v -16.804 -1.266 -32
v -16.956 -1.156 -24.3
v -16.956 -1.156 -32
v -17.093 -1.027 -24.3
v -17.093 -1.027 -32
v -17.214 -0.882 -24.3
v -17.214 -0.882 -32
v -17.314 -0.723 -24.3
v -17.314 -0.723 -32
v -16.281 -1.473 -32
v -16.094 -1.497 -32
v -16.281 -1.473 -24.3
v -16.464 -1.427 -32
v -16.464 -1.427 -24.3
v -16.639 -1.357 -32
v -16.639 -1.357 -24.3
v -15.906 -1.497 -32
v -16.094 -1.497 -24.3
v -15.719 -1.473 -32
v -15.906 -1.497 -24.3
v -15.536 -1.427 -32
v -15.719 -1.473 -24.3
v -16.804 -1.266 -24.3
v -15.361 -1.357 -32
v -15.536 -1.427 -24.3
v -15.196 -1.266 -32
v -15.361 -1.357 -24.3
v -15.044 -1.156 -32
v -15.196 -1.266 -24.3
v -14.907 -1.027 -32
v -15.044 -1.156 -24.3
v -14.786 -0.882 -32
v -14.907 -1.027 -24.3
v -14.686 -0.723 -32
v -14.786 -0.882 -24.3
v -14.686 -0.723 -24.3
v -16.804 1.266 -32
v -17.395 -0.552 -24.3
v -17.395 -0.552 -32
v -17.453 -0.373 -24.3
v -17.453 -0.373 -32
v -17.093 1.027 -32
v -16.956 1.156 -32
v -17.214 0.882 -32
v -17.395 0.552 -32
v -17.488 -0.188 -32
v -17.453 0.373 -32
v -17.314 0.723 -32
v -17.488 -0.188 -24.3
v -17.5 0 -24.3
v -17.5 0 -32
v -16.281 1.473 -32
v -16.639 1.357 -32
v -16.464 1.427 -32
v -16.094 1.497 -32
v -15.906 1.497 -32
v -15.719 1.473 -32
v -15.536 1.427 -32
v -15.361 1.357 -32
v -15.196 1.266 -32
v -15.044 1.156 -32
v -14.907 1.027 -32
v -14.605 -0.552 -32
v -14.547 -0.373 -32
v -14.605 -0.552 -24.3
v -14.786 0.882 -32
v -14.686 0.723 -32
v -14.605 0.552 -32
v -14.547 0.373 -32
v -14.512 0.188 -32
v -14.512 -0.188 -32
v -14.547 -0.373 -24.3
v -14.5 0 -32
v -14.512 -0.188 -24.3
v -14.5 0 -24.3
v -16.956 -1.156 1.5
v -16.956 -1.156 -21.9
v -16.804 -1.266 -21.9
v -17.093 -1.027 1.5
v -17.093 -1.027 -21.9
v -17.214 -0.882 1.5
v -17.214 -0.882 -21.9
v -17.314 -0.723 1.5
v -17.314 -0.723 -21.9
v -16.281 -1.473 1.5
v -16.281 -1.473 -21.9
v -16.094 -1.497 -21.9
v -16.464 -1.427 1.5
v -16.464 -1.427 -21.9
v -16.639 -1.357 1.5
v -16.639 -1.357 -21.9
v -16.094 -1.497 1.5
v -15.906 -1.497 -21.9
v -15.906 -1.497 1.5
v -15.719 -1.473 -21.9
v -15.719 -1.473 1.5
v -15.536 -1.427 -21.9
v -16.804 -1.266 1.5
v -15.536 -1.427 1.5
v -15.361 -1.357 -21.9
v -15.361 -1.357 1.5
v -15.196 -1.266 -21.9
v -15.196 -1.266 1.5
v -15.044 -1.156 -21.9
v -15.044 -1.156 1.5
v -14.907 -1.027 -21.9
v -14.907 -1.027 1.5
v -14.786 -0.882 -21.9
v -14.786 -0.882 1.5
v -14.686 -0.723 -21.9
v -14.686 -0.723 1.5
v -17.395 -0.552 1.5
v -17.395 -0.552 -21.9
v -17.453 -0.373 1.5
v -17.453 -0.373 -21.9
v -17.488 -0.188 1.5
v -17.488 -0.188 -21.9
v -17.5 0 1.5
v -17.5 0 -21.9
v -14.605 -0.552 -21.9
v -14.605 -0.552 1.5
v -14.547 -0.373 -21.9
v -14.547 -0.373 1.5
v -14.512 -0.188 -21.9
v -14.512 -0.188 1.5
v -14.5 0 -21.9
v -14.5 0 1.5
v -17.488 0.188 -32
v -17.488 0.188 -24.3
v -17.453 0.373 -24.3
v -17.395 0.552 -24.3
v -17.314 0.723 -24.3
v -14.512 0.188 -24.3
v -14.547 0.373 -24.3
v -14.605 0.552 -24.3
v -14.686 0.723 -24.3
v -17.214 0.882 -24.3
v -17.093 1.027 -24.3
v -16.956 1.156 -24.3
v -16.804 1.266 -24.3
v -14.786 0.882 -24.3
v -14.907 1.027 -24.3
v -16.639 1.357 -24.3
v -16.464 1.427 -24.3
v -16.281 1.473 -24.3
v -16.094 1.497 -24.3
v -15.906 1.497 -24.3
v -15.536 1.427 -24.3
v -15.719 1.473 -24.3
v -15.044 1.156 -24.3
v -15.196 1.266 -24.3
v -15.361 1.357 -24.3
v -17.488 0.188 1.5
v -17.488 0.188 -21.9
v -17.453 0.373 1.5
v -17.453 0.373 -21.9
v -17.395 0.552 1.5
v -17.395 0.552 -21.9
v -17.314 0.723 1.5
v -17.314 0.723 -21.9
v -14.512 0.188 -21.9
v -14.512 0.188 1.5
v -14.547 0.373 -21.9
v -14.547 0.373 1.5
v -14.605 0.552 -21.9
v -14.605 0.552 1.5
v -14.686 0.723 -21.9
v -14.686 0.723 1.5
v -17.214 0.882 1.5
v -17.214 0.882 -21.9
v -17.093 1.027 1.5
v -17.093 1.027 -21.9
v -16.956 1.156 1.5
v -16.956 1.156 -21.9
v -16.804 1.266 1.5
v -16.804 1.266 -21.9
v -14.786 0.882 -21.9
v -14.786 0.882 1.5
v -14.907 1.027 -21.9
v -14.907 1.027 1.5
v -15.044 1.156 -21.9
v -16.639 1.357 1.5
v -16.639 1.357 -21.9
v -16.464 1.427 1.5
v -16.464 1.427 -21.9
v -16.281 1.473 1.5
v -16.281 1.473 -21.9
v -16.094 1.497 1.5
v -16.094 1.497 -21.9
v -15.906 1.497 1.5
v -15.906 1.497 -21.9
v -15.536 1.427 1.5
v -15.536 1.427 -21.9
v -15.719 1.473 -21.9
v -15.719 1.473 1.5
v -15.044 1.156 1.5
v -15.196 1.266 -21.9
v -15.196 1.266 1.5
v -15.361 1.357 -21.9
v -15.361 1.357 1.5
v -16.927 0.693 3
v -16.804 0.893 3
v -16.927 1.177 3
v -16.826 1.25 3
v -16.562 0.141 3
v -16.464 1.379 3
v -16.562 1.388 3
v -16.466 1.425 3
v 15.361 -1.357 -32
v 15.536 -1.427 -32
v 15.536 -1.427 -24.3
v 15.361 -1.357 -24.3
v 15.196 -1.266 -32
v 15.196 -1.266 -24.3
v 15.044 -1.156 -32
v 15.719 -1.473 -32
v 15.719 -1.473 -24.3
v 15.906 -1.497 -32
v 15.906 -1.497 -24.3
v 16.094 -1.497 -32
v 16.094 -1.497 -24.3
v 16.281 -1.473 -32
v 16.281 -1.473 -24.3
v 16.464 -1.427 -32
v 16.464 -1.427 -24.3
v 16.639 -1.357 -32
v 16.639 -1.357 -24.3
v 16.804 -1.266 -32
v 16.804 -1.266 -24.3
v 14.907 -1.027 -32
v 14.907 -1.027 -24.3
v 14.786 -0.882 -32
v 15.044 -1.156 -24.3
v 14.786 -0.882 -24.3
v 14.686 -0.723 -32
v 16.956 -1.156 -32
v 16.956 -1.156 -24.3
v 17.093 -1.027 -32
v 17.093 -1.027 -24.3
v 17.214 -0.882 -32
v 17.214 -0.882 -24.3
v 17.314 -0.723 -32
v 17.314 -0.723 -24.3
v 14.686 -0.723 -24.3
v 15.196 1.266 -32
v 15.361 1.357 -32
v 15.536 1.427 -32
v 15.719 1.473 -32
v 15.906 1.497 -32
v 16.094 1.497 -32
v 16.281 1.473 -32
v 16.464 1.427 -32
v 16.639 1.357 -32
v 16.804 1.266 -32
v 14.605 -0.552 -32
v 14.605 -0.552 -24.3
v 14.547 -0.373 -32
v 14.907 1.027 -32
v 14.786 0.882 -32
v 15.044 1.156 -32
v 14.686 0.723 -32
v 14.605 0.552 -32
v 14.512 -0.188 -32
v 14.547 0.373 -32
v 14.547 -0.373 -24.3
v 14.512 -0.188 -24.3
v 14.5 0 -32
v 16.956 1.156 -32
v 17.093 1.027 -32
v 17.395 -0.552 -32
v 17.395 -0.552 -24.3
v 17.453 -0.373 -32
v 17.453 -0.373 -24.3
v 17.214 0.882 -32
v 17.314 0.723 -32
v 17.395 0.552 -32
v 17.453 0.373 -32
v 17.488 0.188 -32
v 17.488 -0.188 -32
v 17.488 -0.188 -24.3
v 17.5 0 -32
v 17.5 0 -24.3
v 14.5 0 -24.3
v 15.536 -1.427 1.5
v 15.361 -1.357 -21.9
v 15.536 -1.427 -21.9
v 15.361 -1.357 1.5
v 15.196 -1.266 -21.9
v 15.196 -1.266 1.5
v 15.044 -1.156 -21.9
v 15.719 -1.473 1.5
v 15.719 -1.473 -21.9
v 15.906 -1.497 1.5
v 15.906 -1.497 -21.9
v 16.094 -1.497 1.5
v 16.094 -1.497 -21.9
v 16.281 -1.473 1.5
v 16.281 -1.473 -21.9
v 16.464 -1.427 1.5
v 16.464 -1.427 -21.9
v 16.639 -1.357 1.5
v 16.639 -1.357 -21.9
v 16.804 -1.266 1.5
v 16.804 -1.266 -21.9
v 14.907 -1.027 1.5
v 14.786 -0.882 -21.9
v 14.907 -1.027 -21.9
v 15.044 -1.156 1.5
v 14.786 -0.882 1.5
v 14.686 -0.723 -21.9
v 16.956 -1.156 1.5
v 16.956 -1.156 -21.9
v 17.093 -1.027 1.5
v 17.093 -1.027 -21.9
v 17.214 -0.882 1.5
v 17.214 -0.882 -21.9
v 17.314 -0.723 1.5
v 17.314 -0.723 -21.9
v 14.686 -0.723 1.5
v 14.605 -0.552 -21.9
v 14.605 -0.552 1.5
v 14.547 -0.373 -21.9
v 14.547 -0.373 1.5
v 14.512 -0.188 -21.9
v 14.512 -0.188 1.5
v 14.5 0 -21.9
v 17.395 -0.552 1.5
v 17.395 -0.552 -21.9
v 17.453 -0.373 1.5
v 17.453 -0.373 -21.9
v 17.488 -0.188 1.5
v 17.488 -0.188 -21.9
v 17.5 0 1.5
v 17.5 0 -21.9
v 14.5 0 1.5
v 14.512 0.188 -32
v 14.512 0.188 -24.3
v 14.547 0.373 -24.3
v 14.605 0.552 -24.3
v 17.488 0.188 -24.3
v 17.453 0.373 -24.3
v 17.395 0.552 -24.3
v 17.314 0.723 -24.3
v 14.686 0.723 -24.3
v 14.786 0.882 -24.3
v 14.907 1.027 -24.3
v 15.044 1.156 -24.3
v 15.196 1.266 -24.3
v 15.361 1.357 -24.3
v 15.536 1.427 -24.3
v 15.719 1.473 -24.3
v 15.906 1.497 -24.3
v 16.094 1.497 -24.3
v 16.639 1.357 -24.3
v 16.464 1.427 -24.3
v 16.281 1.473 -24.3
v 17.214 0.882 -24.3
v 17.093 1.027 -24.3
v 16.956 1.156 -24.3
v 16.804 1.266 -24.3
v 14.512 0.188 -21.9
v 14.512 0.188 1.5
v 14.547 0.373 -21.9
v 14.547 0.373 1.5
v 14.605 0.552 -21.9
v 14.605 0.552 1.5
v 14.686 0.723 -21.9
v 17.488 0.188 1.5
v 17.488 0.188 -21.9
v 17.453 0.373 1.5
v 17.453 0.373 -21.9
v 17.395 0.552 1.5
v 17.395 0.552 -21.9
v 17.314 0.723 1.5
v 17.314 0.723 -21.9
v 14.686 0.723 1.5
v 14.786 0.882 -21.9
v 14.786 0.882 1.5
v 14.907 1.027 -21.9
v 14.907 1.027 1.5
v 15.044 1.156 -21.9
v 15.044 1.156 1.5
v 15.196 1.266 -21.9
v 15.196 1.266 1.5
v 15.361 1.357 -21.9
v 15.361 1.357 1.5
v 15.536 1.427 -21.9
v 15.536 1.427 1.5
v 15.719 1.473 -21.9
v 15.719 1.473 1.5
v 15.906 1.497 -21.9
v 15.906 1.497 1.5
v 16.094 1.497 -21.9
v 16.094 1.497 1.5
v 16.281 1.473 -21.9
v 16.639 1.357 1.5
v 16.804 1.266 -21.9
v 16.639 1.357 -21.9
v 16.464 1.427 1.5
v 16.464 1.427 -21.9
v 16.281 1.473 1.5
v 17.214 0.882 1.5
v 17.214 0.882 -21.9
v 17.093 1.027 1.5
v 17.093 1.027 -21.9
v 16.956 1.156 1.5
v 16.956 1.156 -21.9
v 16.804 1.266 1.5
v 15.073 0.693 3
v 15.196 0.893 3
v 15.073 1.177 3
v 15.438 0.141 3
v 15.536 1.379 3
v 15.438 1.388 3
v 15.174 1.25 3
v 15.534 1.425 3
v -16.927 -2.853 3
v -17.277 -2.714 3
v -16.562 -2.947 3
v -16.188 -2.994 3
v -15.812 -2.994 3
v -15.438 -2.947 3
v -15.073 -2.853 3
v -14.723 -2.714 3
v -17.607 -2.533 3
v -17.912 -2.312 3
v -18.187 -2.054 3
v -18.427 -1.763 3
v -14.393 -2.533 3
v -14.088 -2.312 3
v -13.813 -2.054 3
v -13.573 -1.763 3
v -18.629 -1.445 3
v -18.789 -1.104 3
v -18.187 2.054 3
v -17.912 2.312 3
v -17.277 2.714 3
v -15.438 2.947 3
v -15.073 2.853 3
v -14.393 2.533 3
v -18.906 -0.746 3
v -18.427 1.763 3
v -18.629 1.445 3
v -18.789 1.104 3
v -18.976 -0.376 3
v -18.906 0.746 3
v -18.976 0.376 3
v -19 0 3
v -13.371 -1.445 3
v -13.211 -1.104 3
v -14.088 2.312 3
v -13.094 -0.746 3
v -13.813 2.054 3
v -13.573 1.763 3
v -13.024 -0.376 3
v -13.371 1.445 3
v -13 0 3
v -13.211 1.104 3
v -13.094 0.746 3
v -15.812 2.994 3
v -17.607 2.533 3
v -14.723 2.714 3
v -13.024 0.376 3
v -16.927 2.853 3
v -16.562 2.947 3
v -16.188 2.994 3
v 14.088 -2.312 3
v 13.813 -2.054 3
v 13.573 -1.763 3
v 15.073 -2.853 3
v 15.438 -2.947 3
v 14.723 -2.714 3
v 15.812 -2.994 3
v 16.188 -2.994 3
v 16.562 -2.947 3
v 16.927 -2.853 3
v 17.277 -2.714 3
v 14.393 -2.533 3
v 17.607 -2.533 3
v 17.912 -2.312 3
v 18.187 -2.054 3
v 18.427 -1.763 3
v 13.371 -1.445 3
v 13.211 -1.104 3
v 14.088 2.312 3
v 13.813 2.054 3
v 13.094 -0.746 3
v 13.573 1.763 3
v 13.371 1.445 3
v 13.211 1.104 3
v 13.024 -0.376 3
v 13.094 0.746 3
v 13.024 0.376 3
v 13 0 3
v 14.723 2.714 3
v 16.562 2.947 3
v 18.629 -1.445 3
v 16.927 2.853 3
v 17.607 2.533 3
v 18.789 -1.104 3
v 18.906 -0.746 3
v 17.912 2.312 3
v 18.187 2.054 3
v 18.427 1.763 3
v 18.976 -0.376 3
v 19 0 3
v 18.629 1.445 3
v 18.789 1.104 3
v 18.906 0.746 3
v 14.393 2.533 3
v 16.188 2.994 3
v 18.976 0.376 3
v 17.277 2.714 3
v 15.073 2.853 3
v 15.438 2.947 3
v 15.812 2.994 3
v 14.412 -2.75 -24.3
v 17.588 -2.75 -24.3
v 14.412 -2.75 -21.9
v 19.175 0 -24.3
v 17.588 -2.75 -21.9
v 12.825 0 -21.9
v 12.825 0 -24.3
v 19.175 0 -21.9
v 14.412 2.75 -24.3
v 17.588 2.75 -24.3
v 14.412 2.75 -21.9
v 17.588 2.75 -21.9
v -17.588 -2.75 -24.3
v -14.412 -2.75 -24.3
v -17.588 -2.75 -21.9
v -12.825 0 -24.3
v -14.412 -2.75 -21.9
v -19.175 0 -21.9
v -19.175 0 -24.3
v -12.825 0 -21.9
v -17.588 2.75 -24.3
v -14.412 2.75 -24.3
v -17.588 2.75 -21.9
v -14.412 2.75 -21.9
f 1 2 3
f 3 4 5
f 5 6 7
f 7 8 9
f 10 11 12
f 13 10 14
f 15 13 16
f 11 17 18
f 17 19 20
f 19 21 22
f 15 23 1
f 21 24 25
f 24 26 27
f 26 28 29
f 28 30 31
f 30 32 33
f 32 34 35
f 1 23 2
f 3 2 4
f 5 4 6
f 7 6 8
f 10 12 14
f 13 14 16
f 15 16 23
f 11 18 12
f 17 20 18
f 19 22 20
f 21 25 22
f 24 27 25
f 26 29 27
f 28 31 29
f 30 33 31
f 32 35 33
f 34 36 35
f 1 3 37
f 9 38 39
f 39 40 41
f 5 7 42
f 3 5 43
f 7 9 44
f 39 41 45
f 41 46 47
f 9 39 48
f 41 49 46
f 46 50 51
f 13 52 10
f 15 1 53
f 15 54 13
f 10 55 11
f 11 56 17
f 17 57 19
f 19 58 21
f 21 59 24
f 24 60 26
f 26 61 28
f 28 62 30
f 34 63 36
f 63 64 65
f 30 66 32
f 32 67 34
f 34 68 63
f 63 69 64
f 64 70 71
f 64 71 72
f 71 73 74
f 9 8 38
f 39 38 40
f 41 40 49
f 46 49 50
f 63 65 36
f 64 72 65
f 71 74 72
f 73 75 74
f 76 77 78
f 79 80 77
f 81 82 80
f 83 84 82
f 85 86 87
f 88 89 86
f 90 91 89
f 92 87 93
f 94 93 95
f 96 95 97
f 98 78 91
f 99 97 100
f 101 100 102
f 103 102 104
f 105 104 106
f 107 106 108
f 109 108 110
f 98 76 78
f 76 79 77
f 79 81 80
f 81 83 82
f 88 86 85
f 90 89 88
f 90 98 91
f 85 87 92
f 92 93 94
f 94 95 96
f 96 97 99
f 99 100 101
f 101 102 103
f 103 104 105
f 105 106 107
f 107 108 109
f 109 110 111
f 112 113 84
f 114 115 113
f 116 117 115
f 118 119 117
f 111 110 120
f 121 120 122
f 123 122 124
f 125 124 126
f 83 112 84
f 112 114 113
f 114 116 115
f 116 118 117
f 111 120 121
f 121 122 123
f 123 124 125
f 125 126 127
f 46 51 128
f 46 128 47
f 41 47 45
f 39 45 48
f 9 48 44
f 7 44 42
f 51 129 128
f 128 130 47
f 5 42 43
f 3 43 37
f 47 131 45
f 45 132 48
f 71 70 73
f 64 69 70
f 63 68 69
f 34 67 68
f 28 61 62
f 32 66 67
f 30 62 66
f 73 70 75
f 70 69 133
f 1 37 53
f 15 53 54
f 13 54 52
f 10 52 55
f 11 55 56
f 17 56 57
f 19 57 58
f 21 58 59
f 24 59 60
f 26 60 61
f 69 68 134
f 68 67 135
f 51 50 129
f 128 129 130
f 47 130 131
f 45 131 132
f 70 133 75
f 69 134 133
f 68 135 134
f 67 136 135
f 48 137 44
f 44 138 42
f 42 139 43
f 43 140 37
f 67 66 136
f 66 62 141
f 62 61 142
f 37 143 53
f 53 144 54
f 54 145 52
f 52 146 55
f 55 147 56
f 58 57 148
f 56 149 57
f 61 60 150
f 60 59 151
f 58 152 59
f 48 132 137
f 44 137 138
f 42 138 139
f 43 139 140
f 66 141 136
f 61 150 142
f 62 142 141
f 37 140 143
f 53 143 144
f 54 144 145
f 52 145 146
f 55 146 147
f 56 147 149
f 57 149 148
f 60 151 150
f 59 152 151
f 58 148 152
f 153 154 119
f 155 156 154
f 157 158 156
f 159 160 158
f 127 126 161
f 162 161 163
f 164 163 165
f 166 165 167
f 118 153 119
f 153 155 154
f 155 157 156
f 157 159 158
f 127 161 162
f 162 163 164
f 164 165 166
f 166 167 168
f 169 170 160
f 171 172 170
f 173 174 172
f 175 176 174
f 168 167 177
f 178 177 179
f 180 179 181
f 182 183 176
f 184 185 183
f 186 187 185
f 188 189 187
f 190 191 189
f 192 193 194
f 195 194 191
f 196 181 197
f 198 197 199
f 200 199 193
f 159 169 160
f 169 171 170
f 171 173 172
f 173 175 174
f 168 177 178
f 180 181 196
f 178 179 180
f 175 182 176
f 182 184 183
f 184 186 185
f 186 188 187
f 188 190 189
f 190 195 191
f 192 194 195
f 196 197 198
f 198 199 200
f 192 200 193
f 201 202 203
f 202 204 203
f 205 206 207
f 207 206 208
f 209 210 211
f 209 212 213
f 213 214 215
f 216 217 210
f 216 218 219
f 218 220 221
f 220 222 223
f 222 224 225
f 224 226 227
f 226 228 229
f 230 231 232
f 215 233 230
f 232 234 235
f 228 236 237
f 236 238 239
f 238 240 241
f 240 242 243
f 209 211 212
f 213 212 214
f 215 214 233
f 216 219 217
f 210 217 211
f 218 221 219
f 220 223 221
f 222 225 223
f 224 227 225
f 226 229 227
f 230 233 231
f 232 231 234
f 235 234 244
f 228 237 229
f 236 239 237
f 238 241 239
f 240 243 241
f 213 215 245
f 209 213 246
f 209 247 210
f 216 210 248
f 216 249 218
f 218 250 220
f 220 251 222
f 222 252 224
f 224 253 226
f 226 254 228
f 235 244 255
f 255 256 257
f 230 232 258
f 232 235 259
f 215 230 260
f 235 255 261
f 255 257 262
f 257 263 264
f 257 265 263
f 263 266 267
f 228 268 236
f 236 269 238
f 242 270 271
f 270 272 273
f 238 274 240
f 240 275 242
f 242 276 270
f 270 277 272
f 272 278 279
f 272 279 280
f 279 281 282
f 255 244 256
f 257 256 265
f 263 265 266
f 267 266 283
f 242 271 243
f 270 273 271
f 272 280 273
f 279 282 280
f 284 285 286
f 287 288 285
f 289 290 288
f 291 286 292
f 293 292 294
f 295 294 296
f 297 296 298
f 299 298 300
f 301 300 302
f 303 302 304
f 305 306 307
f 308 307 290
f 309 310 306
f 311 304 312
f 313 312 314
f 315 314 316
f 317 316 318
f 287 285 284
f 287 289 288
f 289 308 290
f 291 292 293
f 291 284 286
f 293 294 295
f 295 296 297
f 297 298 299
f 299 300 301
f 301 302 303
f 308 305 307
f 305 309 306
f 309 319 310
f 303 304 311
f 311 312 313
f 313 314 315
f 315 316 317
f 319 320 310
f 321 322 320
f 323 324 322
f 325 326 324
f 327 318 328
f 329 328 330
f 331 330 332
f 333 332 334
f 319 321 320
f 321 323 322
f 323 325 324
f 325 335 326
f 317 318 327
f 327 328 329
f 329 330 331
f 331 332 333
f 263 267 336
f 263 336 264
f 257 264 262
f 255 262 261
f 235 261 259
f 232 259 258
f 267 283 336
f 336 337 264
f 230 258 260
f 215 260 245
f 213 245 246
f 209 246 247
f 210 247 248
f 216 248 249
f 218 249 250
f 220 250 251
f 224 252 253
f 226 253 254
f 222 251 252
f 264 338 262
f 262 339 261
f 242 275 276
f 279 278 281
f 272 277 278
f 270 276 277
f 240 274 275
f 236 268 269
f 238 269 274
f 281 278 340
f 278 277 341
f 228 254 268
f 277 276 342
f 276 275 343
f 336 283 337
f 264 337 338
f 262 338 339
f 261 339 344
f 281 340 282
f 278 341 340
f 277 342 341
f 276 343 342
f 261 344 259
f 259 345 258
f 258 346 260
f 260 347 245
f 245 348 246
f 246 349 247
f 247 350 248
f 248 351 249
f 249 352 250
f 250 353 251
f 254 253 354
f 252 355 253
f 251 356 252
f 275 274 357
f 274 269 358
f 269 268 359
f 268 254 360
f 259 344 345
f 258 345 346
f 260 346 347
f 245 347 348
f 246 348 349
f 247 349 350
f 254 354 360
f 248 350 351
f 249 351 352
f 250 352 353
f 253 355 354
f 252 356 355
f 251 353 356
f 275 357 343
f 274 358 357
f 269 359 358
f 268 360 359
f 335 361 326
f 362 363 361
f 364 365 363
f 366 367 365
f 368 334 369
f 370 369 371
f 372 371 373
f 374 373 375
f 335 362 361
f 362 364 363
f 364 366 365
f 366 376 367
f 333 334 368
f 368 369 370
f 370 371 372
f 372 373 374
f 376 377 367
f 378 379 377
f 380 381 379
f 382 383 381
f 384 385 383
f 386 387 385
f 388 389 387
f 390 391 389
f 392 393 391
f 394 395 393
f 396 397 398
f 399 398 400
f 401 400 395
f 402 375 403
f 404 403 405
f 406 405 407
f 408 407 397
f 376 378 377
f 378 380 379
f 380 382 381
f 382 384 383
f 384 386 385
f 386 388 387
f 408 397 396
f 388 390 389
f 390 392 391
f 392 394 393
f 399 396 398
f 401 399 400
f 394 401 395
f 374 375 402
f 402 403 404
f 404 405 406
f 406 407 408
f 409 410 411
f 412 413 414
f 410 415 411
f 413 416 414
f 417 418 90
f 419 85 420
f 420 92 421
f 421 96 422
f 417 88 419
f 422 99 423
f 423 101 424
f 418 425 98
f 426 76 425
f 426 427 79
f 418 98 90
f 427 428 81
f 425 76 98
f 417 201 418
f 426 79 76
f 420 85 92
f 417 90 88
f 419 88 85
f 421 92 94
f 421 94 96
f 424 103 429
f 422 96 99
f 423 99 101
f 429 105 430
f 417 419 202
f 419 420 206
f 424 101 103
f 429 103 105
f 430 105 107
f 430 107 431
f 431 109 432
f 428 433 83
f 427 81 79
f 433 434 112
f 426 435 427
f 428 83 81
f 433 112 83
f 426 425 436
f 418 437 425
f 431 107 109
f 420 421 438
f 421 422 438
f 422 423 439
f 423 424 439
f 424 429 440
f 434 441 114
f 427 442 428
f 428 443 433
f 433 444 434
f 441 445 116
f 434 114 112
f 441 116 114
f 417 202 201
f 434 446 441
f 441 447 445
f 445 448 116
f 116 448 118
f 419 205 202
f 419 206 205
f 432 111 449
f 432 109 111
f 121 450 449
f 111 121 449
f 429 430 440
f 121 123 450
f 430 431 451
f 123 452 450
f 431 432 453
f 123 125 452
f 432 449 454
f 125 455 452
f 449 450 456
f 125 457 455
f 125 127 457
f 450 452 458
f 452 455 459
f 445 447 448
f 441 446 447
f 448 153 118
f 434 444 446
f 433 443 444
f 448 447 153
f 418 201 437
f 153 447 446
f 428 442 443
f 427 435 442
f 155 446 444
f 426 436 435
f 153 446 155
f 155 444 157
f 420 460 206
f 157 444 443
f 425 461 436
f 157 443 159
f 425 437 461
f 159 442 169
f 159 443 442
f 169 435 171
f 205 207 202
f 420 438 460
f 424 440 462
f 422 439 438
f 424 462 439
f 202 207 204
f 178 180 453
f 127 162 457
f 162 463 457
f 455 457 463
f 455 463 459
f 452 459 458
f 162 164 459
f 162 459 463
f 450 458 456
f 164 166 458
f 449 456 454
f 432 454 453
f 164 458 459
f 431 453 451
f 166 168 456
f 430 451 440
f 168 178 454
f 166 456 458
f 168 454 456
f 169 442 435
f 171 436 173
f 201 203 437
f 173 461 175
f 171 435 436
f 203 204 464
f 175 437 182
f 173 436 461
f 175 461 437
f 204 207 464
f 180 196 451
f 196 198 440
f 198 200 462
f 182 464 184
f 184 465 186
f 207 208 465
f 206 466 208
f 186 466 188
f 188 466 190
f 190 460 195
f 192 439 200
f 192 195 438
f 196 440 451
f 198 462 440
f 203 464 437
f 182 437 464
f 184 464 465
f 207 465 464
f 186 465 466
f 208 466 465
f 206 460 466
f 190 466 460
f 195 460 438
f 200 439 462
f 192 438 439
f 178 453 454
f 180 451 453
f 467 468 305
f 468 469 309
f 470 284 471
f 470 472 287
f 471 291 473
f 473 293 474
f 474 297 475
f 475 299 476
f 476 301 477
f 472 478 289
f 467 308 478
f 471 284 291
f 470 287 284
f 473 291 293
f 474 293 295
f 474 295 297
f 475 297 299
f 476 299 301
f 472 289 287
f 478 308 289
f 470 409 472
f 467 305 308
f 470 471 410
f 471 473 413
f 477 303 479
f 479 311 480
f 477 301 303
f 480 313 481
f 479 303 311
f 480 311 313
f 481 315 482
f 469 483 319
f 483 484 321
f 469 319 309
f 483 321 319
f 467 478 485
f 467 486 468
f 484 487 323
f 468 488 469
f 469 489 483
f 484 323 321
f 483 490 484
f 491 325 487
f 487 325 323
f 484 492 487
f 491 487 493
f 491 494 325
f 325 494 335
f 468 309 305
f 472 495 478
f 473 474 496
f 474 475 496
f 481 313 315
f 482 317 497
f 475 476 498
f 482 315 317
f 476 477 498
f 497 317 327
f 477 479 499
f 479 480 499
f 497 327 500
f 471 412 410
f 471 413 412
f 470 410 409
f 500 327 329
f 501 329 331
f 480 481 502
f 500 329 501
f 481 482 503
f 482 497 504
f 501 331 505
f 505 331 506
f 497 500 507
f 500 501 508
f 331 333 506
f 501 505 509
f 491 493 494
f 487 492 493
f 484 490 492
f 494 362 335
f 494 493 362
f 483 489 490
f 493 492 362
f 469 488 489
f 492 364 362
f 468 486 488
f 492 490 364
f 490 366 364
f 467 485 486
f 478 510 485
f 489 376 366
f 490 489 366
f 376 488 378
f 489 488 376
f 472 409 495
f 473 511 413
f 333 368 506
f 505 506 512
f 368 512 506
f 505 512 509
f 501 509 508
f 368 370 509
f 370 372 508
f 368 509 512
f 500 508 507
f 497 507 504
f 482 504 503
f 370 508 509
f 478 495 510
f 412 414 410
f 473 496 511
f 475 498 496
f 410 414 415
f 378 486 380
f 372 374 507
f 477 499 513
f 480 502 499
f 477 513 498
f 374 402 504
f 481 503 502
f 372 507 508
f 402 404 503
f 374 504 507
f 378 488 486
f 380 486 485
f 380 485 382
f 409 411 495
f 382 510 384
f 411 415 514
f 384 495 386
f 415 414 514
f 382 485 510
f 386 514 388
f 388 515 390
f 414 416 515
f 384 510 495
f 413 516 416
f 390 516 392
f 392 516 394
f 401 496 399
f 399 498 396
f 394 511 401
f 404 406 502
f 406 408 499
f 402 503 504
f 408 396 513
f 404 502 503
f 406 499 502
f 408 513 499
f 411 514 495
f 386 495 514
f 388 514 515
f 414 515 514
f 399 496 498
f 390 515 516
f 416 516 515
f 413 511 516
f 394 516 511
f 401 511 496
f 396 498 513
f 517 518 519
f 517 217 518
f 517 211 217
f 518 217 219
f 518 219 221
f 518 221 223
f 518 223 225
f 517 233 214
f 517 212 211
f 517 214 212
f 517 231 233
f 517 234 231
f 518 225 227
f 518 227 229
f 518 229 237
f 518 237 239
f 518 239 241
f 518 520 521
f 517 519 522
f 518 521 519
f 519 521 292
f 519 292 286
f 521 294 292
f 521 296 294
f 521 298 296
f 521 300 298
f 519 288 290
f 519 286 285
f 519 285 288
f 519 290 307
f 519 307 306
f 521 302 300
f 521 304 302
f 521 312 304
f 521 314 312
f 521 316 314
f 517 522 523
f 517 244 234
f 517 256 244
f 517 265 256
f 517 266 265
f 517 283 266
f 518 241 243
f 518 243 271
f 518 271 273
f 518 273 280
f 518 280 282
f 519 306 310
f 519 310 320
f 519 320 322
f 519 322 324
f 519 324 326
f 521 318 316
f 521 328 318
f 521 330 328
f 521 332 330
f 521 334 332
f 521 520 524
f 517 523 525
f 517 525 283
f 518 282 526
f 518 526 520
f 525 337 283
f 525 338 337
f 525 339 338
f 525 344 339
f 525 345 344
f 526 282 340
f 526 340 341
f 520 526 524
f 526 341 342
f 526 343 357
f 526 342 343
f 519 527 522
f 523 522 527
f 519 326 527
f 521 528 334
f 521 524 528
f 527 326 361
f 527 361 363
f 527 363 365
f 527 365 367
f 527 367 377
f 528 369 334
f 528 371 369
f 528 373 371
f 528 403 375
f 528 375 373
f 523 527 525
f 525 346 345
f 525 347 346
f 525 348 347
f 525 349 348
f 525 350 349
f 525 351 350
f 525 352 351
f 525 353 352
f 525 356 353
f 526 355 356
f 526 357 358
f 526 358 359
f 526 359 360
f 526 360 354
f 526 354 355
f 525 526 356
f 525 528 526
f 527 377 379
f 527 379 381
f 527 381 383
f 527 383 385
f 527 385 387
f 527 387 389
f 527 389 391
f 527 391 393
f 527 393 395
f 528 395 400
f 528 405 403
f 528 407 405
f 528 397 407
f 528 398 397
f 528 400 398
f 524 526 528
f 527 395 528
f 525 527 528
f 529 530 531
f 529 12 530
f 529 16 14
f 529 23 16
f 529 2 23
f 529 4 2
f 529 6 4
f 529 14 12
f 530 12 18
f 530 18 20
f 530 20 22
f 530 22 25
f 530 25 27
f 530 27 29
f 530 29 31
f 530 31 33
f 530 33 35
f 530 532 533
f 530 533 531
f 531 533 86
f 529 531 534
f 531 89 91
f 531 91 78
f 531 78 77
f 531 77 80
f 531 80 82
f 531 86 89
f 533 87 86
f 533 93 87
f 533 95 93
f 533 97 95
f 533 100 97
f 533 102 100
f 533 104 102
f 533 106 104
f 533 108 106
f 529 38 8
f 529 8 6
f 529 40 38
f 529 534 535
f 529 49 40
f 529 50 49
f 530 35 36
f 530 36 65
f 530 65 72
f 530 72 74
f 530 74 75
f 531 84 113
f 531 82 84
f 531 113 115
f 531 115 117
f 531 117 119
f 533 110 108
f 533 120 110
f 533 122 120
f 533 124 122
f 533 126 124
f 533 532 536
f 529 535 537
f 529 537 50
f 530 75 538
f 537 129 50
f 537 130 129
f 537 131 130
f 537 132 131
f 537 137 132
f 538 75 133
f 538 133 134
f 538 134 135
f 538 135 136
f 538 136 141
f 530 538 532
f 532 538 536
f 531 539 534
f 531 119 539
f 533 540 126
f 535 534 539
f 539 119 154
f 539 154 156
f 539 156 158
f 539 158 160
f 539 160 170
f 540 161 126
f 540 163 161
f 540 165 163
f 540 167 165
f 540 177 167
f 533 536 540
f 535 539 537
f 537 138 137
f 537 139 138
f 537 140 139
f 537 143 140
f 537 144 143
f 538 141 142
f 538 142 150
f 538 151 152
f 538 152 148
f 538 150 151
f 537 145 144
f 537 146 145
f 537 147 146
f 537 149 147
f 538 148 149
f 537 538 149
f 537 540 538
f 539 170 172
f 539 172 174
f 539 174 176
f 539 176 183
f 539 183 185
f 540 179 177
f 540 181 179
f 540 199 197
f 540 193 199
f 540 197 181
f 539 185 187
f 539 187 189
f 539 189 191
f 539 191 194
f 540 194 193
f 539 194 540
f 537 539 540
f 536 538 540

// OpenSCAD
$fn = 50;

difference() {
	union() {
		translate(v = [-16, 0, 3]) {
			rotate(a = [0, 0, 0]) {
				difference() {
					union() {
						translate(v = [0, 0, -35.0]) {
							cylinder(h = 35, r = 1.5);
						}
						translate(v = [0, 0, -1.5]) {
							cylinder(h = 1.5, r1 = 1.5, r2 = 3);
						}
					}
					union();
				}
			}
		}
		translate(v = [-16, 0, -24.3]) {
			rotate(a = [0, 0, 0]) {
				difference() {
					union() {
						linear_extrude(height = 2.4) {
							polygon(points = [[3.1754264805429417, 0.0], [1.5877132402714713, 2.75], [-1.5877132402714702, 2.7500000000000004], [-3.1754264805429417, 3.888775875324659e-16], [-1.5877132402714722, -2.7499999999999996], [1.5877132402714687, -2.7500000000000013]]);
						}
					}
					union();
				}
			}
		}
		translate(v = [16, 0, 3]) {
			rotate(a = [0, 0, 0]) {
				difference() {
					union() {
						translate(v = [0, 0, -35.0]) {
							cylinder(h = 35, r = 1.5);
						}
						translate(v = [0, 0, -1.5]) {
							cylinder(h = 1.5, r1 = 1.5, r2 = 3);
						}
					}
					union();
				}
			}
		}
		translate(v = [16, 0, -24.3]) {
			rotate(a = [0, 0, 0]) {
				difference() {
					union() {
						linear_extrude(height = 2.4) {
							polygon(points = [[3.1754264805429417, 0.0], [1.5877132402714713, 2.75], [-1.5877132402714702, 2.7500000000000004], [-3.1754264805429417, 3.888775875324659e-16], [-1.5877132402714722, -2.7499999999999996], [1.5877132402714687, -2.7500000000000013]]);
						}
					}
					union();
				}
			}
		}
	}
	union();
}
